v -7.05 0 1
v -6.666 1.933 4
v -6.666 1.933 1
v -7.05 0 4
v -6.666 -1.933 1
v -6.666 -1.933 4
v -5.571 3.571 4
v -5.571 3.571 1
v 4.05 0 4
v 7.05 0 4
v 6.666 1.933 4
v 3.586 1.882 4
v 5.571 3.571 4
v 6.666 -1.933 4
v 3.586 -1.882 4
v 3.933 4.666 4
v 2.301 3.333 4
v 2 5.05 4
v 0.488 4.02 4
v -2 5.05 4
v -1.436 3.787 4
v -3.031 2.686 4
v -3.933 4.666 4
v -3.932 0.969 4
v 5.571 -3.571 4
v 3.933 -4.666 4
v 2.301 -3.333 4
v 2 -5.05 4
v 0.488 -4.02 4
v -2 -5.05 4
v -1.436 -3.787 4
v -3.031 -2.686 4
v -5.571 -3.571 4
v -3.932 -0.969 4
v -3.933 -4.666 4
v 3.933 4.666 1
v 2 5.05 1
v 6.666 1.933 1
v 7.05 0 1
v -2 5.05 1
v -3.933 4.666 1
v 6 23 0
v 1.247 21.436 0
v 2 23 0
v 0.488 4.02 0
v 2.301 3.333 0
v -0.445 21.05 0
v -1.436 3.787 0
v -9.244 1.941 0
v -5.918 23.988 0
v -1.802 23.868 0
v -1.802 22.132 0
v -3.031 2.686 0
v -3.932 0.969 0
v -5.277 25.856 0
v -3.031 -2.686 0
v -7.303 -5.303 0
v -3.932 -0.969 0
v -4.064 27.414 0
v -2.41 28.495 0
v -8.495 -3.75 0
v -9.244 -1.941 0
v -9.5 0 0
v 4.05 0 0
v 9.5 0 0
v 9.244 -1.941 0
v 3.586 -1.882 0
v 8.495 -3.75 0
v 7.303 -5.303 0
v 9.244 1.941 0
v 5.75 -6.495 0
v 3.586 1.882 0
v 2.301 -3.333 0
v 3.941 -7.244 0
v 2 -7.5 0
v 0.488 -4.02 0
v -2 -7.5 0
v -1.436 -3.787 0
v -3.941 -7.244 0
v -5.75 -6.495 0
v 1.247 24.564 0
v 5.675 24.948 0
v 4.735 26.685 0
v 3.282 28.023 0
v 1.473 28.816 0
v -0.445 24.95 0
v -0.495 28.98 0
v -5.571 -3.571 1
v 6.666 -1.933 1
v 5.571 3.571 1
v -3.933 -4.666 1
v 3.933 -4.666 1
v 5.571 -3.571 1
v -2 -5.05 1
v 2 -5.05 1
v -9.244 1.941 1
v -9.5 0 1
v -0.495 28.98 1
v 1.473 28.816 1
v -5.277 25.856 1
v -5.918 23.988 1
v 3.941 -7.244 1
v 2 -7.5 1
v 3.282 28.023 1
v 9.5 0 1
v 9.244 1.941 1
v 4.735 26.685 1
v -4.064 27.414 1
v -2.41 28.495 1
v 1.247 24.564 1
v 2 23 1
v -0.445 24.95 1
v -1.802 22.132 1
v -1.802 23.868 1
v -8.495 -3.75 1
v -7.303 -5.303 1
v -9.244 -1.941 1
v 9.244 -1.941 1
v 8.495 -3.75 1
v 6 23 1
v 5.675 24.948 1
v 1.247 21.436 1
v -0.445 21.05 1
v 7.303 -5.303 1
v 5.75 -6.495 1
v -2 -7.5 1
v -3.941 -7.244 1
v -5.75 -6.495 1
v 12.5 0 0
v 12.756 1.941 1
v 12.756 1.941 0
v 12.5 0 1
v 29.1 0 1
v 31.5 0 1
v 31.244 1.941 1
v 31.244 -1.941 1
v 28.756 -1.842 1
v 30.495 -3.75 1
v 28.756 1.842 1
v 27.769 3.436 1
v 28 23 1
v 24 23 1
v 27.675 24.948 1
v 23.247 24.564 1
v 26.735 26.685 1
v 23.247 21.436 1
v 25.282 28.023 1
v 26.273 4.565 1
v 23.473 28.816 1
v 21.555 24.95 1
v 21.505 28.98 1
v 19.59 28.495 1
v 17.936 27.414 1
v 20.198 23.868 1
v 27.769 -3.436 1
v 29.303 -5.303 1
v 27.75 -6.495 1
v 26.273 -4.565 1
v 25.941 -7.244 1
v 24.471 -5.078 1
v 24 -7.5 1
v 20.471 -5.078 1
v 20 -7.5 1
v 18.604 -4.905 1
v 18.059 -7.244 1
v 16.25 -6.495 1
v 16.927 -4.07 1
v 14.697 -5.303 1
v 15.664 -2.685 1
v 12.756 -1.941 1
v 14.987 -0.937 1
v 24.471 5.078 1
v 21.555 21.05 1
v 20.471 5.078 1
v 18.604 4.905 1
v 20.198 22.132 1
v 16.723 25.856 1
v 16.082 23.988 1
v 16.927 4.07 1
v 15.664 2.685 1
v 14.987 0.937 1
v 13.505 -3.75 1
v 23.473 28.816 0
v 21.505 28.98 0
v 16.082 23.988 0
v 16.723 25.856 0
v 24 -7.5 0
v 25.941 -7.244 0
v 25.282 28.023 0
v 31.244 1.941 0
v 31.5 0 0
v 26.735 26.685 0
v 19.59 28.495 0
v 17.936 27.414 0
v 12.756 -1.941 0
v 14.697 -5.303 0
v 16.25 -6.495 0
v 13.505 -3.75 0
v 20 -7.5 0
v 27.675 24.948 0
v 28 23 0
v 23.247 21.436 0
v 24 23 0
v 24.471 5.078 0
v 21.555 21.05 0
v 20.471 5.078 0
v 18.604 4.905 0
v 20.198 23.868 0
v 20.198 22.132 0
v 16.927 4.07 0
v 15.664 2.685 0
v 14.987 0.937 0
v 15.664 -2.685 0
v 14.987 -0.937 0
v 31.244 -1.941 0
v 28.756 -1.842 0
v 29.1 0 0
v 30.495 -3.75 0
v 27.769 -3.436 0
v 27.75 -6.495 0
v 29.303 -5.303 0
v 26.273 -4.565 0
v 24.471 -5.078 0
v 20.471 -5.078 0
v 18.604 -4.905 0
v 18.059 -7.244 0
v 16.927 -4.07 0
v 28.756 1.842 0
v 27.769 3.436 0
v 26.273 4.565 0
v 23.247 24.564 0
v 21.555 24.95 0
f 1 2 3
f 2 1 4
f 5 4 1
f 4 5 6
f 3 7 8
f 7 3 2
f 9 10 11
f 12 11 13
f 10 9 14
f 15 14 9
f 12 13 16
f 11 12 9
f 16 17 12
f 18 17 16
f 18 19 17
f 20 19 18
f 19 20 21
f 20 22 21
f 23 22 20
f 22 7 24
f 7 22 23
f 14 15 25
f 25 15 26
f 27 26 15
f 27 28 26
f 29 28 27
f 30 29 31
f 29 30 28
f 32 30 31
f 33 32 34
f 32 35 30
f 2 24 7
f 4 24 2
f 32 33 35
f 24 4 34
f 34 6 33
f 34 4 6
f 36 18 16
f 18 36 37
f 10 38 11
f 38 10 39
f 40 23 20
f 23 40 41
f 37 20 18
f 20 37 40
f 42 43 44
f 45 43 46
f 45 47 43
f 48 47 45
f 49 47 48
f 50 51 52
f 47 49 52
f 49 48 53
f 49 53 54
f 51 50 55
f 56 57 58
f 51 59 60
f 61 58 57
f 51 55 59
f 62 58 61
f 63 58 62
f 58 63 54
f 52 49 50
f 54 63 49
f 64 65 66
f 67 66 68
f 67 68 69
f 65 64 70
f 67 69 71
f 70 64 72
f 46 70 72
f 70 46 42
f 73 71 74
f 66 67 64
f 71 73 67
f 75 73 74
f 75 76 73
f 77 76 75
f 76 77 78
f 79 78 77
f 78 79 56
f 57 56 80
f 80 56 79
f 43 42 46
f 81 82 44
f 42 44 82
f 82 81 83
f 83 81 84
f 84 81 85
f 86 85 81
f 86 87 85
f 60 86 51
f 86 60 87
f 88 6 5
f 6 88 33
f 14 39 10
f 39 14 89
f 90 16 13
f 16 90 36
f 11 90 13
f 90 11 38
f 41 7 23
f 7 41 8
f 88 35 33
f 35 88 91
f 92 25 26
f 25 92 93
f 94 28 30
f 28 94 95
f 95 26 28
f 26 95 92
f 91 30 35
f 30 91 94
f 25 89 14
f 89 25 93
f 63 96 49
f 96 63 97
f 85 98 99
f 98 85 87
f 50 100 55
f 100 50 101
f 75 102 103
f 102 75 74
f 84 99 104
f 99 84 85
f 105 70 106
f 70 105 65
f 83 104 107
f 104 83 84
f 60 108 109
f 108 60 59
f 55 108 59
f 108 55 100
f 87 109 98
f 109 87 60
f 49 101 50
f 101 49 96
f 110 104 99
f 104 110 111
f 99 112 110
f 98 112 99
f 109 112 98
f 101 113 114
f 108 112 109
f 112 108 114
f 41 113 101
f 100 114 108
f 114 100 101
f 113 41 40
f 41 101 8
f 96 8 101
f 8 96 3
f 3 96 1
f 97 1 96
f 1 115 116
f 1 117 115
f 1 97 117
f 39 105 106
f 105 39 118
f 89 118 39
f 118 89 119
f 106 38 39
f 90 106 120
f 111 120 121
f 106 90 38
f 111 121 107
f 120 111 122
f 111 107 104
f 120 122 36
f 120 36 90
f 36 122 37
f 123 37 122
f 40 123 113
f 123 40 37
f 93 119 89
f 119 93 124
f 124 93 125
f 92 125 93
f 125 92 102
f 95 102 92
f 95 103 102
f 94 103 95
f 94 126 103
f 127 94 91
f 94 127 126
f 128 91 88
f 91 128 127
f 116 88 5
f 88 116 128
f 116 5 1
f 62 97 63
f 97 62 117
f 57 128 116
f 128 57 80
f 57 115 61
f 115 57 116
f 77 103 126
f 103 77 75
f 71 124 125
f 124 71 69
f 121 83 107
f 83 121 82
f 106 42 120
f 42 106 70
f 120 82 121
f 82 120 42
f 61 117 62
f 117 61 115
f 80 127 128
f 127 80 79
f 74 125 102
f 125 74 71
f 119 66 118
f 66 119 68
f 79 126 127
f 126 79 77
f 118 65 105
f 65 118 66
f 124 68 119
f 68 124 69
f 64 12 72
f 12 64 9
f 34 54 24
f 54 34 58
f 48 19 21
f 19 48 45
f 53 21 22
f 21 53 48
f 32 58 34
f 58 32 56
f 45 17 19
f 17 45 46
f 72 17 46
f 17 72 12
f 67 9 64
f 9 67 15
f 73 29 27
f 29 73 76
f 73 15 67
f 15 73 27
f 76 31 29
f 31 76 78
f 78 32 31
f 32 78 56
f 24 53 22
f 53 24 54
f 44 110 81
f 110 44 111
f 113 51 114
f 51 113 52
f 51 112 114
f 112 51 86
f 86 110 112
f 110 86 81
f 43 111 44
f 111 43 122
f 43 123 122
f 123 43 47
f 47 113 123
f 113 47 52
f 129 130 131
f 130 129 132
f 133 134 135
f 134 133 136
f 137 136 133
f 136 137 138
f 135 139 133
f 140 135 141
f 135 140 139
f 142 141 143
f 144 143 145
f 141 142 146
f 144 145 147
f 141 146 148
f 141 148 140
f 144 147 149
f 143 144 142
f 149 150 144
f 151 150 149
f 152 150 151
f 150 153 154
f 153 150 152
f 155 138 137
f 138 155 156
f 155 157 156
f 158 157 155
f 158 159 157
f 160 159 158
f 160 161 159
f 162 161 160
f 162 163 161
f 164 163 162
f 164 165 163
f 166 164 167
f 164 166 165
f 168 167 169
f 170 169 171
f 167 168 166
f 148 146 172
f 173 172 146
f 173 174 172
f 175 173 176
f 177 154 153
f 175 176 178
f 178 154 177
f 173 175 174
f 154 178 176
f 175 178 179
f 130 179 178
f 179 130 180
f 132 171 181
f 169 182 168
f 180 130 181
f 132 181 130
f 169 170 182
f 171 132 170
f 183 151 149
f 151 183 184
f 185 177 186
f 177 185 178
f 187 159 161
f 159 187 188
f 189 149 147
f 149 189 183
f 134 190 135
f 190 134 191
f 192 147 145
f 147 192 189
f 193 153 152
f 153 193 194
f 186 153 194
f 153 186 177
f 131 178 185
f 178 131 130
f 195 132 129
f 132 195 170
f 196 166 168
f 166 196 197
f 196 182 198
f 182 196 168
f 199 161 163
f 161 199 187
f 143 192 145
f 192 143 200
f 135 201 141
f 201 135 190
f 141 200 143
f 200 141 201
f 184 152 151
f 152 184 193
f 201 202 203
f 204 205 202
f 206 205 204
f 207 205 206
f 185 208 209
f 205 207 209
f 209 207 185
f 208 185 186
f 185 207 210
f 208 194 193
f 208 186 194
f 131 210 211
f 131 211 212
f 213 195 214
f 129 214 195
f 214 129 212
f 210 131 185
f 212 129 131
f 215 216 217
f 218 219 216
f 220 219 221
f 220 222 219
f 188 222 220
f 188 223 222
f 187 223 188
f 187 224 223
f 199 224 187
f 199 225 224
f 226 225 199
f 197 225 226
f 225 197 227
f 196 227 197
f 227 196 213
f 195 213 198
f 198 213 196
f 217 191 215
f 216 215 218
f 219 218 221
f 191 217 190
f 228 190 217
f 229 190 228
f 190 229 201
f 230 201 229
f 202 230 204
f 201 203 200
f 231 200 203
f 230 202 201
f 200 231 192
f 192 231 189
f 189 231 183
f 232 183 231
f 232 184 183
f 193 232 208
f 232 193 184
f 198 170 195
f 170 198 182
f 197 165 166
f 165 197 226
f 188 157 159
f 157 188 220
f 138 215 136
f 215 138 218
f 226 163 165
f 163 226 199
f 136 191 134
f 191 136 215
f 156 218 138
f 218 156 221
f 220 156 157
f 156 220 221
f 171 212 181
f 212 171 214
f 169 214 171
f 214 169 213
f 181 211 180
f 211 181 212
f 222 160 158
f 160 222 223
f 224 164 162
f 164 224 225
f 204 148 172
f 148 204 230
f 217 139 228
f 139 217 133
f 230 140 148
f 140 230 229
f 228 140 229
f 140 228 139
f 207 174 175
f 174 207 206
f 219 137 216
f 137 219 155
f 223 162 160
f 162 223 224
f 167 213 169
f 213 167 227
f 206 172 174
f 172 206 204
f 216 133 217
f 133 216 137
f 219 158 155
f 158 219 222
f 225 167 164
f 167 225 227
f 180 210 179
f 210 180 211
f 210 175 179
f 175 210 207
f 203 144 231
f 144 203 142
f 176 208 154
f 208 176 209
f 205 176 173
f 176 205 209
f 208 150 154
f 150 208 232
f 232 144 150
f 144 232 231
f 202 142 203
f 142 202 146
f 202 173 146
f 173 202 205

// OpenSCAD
difference()
{
    union(){
        hull()
        {
            translate([-2,0,0])
            cylinder(d=10.1, h=4);
            translate([2,0,0])
                cylinder(d=10.1, h=4);
        }
        hull()
        {            
            translate([-2,0,0])
                cylinder(d=15, h=1);
            translate([2,0,0])
                cylinder(d=15, h=1);
            translate([0,23,0])
                cylinder(r=6,h=1);

        }
    }
    cylinder(d=8.1, h=20, center=true);
    translate([0,23,0])
        cylinder(r=2,h=20, center=true);
        
}

translate([22,0,0])
difference()
{
    union(){
        hull()
        {            
            translate([-2,0,0])
                cylinder(d=15, h=1);
            translate([2,0,0])
                cylinder(d=15, h=1);
            translate([0,23,0])
                cylinder(r=6,h=1);
        }
    }

    hull()
    {
        translate([-2,0,0])
        cylinder(d=10.2, h=4, center=true);
        translate([2,0,0])
            cylinder(d=10.2, h=4,center=true);
    }

    translate([0,23,0])
        cylinder(r=2,h=20, center=true);
        
}
